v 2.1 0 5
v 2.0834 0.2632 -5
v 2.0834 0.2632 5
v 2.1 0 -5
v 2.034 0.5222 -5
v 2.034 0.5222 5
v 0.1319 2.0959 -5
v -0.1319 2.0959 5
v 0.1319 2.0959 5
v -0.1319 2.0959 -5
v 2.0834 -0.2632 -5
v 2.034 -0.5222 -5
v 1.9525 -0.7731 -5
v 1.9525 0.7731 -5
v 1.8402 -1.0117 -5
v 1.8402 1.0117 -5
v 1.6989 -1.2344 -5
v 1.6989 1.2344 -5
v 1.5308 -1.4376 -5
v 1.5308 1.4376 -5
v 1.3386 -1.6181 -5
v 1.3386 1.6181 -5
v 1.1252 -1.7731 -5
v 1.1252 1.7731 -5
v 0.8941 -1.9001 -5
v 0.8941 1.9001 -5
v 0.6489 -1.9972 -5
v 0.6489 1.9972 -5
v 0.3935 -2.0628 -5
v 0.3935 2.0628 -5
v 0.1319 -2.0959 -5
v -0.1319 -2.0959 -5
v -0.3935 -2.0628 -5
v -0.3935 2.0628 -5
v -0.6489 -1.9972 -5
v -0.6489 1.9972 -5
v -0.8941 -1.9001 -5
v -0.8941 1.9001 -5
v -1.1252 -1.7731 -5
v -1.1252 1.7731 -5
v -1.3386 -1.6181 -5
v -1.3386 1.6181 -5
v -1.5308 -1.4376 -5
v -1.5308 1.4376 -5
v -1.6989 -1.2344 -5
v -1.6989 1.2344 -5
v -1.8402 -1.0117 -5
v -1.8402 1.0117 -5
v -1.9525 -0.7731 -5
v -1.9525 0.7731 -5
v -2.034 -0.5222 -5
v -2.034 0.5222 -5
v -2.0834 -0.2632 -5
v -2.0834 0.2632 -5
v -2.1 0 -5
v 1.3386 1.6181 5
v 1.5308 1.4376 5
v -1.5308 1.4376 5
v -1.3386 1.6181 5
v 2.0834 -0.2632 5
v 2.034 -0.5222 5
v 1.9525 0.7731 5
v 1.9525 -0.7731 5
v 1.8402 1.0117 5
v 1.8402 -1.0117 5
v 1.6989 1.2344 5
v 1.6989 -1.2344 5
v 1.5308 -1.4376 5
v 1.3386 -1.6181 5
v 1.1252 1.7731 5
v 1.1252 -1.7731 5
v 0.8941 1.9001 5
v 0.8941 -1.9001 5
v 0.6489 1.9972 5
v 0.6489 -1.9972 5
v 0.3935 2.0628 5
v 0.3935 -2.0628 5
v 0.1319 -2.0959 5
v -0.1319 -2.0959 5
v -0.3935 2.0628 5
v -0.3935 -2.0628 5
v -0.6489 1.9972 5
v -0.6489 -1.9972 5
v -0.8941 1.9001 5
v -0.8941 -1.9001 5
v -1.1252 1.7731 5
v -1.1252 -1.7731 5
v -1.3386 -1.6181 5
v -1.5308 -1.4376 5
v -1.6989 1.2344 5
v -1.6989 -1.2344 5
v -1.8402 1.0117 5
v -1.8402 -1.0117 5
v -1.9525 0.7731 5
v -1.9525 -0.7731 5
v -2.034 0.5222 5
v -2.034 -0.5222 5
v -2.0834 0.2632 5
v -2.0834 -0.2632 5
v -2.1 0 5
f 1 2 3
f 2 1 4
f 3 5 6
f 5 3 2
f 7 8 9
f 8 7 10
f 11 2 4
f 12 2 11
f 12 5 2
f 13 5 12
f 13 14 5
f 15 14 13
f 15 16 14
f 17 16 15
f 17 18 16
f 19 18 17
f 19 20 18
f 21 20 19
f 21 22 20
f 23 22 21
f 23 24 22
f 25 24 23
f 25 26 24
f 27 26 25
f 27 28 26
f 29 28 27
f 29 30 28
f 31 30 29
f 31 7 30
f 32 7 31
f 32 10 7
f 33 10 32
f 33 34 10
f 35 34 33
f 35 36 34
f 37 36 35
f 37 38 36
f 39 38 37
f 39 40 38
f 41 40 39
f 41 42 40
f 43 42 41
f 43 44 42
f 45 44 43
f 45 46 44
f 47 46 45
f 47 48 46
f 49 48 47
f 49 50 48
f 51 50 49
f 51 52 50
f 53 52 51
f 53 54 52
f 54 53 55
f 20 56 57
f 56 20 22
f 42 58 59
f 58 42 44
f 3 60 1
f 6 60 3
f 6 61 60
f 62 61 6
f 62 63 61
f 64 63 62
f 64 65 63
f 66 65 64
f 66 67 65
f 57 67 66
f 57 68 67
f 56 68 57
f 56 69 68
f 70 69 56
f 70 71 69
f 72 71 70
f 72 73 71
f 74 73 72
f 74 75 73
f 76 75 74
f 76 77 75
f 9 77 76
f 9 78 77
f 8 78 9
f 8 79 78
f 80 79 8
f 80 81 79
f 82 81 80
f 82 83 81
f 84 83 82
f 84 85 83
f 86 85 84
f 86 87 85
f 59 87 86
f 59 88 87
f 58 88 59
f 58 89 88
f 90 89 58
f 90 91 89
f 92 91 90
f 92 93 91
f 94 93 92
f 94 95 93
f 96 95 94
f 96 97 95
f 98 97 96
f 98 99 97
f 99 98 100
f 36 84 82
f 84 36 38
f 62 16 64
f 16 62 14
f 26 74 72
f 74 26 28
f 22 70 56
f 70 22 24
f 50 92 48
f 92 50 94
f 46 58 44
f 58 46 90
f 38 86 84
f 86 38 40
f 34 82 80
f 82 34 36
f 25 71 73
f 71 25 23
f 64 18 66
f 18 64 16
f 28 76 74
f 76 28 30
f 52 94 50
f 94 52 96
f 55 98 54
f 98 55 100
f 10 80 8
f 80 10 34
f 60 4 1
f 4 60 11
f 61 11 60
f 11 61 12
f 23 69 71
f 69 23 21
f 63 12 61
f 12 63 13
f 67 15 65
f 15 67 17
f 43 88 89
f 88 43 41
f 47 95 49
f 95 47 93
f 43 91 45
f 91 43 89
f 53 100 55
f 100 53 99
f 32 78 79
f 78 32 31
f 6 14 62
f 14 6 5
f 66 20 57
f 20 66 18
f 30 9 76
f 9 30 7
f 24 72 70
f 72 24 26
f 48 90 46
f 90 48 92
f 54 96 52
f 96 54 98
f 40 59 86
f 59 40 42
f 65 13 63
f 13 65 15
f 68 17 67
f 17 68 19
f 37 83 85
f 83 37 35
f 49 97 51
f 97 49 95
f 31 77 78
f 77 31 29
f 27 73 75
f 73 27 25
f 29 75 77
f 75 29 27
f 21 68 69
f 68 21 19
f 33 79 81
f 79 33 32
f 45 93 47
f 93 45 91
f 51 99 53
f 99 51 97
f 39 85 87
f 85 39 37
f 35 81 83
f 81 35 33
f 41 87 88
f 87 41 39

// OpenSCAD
$fn = 50;


difference() {
	union() {
		translate(v = [0, 0, -5.0000000000]) {
			cylinder(h = 10, r = 2.1000000000);
		}
	}
	union() {
		translate(v = [0, 0, -100.0000000000]) {
			cylinder(h = 200, r = 0);
		}
	}
}
